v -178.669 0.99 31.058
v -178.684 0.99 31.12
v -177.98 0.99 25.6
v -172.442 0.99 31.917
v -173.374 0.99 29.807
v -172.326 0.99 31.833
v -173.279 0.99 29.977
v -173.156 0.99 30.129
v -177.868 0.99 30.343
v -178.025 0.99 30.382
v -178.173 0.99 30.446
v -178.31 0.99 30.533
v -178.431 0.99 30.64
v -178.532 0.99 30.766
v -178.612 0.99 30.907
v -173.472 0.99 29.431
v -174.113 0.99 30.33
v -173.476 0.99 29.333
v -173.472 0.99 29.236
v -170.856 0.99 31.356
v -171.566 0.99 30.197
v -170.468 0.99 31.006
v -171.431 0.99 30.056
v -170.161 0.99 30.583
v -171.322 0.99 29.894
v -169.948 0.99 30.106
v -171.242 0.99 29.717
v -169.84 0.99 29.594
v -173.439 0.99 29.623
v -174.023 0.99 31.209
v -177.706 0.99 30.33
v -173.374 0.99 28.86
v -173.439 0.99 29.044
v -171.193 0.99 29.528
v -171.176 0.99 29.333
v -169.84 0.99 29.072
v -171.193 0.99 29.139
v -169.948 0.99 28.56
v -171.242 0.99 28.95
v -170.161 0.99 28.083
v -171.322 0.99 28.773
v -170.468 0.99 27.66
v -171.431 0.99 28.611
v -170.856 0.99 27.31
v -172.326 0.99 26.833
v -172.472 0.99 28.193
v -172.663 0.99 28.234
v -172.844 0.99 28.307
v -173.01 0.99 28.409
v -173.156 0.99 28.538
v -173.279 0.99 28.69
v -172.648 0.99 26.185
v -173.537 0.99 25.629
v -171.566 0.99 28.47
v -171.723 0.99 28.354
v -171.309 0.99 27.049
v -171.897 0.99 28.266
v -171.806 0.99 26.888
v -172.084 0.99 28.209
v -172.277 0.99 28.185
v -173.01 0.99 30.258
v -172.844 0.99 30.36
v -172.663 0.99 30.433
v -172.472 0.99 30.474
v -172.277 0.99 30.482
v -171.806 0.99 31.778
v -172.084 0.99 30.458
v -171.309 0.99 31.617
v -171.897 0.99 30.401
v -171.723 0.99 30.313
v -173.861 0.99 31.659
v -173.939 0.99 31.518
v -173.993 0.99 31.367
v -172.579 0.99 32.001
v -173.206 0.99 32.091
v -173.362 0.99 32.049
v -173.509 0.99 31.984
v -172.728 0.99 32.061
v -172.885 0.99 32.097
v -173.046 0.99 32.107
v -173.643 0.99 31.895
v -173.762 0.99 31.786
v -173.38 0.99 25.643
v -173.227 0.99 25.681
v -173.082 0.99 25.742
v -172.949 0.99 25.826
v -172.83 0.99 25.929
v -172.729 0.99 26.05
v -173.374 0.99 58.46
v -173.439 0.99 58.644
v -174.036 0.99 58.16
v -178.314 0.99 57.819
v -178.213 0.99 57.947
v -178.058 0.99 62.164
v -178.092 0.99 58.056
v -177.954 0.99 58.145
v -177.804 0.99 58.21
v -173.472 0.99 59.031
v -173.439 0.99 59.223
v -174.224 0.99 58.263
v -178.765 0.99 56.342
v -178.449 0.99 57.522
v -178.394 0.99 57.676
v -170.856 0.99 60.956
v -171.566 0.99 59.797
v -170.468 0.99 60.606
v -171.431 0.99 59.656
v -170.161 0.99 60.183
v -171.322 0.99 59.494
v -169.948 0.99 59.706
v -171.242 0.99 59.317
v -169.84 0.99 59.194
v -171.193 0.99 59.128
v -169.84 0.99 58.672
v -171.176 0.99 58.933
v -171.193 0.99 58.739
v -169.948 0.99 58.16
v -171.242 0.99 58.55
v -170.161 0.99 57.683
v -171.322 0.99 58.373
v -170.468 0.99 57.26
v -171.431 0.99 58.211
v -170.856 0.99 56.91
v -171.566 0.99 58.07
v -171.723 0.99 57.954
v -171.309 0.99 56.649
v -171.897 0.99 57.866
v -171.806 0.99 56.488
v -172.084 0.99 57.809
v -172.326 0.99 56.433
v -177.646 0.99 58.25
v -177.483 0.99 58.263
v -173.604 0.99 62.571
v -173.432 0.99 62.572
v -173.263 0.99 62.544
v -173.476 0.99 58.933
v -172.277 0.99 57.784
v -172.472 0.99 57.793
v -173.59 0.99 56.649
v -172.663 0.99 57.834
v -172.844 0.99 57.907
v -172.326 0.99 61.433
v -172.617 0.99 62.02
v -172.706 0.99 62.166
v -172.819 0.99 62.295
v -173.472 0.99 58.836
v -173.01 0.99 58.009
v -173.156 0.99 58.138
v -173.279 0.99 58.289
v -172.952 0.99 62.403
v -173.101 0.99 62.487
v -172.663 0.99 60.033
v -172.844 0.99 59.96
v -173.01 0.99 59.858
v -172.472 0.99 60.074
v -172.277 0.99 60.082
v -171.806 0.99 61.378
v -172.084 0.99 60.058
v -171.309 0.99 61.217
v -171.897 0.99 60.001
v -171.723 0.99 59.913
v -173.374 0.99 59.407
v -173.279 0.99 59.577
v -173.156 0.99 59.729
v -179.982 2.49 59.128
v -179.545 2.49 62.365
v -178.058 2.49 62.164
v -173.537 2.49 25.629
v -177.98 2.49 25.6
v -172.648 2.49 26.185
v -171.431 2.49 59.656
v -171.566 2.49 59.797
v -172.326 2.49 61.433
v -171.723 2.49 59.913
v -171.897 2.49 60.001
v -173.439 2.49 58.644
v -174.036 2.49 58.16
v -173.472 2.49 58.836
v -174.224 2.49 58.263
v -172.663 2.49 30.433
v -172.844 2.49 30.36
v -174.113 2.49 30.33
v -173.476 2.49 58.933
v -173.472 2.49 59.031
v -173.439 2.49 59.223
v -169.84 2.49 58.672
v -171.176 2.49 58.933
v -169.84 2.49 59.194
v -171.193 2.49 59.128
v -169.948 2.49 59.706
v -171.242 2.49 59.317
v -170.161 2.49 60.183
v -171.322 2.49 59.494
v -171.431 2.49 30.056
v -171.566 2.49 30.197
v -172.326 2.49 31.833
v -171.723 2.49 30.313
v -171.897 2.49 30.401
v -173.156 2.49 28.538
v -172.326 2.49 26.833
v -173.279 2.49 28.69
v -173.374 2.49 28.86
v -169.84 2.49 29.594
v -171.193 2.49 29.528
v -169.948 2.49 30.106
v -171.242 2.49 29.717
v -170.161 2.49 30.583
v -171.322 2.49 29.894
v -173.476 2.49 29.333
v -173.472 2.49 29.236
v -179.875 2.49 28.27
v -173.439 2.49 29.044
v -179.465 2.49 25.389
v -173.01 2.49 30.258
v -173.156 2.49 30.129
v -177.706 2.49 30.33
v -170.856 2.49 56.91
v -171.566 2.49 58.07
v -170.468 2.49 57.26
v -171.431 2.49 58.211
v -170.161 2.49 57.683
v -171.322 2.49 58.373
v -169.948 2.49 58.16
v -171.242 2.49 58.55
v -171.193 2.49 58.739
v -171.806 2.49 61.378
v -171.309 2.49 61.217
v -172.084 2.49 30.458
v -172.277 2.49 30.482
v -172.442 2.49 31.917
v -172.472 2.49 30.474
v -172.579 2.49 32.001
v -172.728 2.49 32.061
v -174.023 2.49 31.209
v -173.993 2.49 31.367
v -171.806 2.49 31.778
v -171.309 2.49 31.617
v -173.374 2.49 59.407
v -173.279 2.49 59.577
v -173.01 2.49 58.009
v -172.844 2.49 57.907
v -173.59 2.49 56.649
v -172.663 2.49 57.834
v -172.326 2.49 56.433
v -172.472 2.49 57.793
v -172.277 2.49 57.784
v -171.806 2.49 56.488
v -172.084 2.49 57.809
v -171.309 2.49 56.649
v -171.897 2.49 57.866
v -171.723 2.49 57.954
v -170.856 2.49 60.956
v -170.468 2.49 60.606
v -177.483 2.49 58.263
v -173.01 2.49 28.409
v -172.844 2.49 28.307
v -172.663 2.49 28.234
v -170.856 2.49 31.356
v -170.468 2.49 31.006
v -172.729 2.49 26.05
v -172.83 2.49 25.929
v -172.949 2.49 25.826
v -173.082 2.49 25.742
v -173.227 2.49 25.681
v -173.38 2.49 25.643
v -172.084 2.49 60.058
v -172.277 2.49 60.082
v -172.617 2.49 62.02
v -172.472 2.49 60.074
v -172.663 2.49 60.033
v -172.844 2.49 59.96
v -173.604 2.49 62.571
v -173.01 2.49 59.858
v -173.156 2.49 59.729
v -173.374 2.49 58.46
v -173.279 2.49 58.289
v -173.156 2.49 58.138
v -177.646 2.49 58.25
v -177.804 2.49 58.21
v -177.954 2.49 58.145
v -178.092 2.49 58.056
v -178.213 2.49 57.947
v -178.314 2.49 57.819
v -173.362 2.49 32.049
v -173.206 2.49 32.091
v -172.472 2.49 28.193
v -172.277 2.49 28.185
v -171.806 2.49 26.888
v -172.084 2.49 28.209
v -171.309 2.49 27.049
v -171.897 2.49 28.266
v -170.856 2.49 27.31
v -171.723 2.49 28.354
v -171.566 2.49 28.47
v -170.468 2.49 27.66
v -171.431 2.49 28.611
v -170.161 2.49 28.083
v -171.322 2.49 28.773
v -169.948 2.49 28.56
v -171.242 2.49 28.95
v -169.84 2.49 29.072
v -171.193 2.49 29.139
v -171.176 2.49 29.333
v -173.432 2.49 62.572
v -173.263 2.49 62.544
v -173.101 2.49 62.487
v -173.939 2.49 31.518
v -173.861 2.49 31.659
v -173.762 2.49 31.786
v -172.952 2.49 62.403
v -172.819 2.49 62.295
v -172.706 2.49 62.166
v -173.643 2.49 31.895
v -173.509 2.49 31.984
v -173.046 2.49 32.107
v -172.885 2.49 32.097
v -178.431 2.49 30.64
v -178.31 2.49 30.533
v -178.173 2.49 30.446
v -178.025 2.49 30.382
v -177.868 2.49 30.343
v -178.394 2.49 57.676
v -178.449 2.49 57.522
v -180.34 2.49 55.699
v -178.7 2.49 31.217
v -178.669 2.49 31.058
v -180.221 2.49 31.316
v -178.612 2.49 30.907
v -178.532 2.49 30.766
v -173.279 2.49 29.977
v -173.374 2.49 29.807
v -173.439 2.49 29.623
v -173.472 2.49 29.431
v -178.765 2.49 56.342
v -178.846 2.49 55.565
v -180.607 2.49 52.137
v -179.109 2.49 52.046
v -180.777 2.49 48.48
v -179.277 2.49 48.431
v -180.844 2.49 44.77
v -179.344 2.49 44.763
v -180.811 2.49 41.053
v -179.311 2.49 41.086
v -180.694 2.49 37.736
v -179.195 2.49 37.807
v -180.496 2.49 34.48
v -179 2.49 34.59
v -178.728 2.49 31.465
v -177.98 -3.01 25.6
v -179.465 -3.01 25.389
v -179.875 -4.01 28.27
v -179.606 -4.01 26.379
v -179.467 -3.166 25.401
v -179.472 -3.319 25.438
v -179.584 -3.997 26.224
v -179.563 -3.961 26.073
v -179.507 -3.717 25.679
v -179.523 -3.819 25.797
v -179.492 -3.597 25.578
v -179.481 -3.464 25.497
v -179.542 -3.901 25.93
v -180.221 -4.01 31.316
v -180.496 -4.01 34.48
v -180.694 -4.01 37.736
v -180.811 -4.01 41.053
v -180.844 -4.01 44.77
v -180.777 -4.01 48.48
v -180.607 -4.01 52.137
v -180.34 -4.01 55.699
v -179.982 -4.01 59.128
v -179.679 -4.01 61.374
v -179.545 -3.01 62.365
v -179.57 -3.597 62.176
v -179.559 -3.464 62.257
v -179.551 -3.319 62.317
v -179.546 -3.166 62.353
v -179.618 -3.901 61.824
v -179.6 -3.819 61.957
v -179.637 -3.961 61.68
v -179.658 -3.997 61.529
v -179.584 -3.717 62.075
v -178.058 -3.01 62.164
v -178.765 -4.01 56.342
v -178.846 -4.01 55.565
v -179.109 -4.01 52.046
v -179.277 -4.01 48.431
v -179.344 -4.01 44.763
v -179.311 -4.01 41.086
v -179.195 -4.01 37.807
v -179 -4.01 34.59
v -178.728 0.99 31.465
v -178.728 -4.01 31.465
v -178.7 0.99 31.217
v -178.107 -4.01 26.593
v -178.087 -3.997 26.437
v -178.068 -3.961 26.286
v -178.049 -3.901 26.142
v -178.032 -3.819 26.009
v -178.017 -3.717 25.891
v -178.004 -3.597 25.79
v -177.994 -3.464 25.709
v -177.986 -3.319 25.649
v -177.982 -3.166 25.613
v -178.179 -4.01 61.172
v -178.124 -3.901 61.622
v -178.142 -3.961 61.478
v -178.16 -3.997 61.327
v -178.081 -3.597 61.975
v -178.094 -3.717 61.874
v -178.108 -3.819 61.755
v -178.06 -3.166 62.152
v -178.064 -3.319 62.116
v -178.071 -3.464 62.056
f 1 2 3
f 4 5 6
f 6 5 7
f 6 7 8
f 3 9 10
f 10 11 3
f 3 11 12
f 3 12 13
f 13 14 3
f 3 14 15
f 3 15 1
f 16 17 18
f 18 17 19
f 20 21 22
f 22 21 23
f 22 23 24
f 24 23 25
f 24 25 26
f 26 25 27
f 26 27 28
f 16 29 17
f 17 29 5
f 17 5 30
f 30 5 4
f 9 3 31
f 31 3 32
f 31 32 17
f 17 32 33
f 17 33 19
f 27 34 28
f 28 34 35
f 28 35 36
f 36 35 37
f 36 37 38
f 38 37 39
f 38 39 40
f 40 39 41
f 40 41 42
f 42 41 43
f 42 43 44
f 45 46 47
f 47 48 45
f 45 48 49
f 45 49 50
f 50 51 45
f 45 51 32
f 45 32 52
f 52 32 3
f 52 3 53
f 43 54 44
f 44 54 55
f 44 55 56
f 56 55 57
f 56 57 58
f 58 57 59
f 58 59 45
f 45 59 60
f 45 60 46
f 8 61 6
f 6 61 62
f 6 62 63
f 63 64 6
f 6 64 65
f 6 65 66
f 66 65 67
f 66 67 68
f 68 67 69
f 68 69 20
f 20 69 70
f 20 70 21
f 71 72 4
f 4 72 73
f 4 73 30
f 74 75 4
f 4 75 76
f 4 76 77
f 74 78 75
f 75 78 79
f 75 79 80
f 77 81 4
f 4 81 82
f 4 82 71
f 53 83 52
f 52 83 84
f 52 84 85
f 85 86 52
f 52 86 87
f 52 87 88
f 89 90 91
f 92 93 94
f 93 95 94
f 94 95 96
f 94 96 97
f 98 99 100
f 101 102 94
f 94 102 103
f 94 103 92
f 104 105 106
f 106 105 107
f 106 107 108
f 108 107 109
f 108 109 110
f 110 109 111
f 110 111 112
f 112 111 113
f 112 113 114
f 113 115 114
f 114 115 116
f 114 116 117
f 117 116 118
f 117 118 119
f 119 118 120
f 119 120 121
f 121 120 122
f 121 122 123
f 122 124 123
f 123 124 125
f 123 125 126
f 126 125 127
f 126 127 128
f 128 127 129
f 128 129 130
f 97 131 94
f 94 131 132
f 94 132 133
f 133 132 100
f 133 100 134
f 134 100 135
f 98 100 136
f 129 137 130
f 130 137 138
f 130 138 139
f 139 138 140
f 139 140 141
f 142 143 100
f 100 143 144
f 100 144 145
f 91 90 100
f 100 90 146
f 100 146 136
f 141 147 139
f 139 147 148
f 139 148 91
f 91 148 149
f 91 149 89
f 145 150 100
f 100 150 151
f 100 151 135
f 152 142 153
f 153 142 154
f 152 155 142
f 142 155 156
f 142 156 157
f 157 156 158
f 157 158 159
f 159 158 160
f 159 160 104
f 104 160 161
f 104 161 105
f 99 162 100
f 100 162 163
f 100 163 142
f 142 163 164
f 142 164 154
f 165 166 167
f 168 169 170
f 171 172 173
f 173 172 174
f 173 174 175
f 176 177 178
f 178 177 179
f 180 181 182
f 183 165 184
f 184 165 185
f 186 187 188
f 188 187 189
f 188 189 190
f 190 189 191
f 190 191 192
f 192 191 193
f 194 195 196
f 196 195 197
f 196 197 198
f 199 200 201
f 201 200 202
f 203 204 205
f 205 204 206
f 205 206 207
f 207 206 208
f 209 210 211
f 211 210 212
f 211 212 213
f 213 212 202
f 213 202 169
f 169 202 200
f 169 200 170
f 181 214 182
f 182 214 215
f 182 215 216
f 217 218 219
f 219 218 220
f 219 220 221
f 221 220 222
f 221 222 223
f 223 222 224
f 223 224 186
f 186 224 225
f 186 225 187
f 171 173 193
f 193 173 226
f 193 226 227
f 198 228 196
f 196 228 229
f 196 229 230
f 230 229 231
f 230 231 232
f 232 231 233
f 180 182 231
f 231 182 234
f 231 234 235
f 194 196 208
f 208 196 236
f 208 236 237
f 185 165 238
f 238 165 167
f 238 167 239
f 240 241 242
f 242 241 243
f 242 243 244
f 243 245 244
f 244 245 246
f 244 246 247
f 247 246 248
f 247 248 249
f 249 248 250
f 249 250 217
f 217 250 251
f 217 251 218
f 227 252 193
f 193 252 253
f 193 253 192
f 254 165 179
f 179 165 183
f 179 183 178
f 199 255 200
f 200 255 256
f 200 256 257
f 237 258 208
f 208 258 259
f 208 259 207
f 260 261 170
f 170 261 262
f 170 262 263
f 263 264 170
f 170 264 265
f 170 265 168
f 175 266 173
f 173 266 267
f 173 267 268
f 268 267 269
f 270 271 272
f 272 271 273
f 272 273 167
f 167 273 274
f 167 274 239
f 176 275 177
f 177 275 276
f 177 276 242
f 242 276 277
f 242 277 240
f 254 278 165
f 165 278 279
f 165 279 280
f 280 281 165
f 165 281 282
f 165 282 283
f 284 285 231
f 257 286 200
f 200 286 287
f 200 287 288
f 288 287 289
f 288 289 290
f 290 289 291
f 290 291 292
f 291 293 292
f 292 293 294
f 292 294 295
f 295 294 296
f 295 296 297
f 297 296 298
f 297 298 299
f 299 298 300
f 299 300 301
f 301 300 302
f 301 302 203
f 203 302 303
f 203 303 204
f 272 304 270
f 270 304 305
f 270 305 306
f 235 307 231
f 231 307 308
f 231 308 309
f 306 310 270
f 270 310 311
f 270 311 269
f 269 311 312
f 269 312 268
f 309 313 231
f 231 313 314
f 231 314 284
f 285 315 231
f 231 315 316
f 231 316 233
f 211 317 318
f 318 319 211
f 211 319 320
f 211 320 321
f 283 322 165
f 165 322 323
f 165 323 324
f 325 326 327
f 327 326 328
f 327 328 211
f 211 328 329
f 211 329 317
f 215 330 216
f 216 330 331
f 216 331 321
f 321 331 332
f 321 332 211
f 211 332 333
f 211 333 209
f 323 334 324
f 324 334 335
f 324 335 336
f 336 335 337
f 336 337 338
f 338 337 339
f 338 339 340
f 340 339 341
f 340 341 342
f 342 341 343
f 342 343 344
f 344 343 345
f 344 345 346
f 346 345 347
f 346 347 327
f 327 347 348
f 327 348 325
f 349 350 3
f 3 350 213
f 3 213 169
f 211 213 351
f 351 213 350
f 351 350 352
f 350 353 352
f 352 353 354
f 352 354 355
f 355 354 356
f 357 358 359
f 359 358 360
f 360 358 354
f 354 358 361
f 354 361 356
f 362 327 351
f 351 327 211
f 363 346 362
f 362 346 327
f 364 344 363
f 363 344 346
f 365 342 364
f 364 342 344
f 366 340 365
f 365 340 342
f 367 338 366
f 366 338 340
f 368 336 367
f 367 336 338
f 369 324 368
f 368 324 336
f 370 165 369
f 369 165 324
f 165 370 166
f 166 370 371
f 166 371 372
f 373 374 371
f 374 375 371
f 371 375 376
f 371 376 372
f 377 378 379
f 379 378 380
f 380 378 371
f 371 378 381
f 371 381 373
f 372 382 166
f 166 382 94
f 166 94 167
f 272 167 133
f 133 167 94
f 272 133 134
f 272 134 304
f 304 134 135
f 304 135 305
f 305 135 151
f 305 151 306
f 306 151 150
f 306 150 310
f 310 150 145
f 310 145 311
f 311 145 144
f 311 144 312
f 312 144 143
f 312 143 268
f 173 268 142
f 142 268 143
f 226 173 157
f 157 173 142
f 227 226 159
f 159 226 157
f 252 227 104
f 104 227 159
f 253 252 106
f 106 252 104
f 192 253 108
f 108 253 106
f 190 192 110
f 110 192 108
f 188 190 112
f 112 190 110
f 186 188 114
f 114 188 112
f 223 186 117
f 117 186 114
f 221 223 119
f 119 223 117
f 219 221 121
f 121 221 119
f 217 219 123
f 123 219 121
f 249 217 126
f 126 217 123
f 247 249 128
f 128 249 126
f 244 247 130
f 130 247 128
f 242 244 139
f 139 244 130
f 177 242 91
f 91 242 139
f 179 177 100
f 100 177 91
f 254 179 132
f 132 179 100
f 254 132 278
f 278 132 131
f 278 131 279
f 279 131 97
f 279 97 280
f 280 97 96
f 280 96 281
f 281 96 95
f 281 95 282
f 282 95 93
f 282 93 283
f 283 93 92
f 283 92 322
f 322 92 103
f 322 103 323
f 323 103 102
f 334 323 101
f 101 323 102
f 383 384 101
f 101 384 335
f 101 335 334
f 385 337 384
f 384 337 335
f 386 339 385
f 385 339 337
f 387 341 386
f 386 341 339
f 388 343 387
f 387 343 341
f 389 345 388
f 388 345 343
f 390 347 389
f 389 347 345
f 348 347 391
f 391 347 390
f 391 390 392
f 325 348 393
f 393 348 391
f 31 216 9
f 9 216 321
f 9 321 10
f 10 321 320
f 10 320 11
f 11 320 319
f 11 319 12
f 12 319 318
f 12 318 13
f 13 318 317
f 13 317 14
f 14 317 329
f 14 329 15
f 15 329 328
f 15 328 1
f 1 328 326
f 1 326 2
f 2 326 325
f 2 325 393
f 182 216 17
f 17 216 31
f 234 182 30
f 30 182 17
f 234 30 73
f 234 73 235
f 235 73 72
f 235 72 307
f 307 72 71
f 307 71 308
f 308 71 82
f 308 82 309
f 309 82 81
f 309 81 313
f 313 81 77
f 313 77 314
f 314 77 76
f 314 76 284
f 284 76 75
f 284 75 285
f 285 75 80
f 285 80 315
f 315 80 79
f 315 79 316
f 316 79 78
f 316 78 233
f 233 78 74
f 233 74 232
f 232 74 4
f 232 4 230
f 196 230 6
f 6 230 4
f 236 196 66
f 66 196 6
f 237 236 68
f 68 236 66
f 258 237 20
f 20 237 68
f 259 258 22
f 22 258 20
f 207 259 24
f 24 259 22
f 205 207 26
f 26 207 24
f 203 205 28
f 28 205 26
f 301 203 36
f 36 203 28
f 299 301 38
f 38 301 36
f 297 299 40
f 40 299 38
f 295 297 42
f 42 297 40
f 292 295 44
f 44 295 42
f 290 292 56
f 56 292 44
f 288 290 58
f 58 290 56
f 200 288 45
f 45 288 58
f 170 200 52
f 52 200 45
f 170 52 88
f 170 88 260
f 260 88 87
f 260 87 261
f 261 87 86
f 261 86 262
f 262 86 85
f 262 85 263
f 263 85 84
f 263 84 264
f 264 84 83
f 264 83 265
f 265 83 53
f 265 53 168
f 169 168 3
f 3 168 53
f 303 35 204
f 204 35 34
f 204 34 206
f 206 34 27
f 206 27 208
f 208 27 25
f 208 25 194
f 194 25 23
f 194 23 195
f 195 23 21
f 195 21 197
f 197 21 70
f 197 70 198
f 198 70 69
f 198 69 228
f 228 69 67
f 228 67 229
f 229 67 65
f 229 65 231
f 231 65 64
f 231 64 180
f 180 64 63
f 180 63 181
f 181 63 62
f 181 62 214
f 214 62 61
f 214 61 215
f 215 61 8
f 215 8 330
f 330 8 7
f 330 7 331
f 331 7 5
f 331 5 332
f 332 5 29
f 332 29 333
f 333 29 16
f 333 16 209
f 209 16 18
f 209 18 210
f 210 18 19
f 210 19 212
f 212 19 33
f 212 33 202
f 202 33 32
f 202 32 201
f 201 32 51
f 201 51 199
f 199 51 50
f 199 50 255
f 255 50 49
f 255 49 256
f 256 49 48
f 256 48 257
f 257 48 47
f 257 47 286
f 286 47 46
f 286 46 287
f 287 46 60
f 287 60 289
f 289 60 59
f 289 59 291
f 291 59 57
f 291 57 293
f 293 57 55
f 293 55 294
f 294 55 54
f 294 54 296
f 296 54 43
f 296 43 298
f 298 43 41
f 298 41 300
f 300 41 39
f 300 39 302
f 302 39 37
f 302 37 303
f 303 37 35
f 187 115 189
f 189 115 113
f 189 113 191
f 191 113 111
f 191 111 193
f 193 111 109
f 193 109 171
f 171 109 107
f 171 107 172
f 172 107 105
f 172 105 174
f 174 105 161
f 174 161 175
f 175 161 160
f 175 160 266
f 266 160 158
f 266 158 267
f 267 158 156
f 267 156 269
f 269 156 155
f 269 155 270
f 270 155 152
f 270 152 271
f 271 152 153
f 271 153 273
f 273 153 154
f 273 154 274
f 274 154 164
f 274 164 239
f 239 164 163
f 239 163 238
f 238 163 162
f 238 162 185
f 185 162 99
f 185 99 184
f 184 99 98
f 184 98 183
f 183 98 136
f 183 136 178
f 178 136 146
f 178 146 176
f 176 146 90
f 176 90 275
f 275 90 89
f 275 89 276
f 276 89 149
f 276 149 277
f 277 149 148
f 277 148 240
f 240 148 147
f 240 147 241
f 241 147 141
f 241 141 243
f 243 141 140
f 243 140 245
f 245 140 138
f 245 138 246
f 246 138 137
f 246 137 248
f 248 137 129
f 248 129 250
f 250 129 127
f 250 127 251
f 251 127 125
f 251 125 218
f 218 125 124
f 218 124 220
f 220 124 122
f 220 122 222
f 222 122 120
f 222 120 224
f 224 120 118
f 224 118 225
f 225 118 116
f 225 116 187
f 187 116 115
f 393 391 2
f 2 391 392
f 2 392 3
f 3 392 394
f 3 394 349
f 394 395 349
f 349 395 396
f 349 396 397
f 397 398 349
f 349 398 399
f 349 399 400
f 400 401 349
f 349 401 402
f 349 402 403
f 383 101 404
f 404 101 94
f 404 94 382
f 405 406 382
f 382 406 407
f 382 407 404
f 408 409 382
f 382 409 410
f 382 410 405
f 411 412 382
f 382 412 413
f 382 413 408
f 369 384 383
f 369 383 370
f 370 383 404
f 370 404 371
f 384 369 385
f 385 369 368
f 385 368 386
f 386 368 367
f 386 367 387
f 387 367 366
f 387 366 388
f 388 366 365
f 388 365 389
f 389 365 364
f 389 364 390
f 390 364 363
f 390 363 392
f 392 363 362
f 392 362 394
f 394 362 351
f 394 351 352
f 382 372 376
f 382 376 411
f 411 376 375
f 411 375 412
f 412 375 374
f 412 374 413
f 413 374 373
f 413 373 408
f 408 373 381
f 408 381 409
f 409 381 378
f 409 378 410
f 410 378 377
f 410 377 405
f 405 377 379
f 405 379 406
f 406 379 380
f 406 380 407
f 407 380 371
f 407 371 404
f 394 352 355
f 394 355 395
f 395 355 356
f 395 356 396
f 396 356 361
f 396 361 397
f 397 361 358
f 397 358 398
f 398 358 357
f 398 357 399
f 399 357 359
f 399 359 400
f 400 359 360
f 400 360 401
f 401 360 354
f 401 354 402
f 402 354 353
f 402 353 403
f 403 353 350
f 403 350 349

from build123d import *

# Parameters (mm, degrees)
SZKIC2_R                    = 1.15000024
DODANIE_WYCI_GNI_CIE1_DEPTH = 1.5
DODANIE_WYCI_GNI_CIE2_DEPTH = 5
ZAOKR_GLENIE1_R             = 1


with BuildPart() as part:
    # Szkic2 → Dodanie-wyciągnięcie1 (new body)
    with BuildSketch(Plane(origin=(0, 0.9903587, 0), x_dir=(1, 0, 0), z_dir=(0, 1, 0))):
        with BuildLine():
            Line((-173.537057861, -25.629454659), (-177.980234802, -25.600470859))
            Line((-177.980234802, -25.600470859), (-179.465273063, -25.389138502))
            Line((-179.465273063, -25.389138502), (-179.875270484, -28.27020162))
            Line((-179.875270484, -28.27020162), (-180.220882829, -31.315847433))
            Line((-180.220882829, -31.315847433), (-180.496294073, -34.480041019))
            Line((-180.496294073, -34.480041019), (-180.693629515, -37.735565991))
            Line((-180.693629515, -37.735565991), (-180.810996631, -41.053218548))
            Line((-180.810996631, -41.053218548), (-180.844357588, -44.770440674))
            Line((-180.844357588, -44.770440674), (-180.776598606, -48.479996177))
            Line((-180.776598606, -48.479996177), (-180.606637328, -52.137204019))
            Line((-180.606637328, -52.137204019), (-180.340406733, -55.699429047))
            Line((-180.340406733, -55.699429047), (-179.981756968, -59.127877551))
            Line((-179.981756968, -59.127877551), (-179.544751696, -62.365140152))
            Line((-179.544751696, -62.365140152), (-178.058234871, -62.164471942))
            Line((-178.058234871, -62.164471942), (-173.603659928, -62.571167494))
            ThreePointArc((-173.603659928, -62.571167494), (-173.024806006, -62.44819003), (-172.616824171, -62.019533826))
            Line((-172.616824171, -62.019533826), (-172.326234878, -61.433471042))
            Line((-172.326234878, -61.433471042), (-171.806234897, -61.378472644))
            Line((-171.806234897, -61.378472644), (-171.309234799, -61.217471439))
            Line((-171.309234799, -61.217471439), (-170.856234968, -60.956471759))
            Line((-170.856234968, -60.956471759), (-170.468234957, -60.606471377))
            Line((-170.468234957, -60.606471377), (-170.161234797, -60.183471042))
            Line((-170.161234797, -60.183471042), (-169.948234976, -59.706471759))
            Line((-169.948234976, -59.706471759), (-169.840234936, -59.194472629))
            Line((-169.840234936, -59.194472629), (-169.840234936, -58.672471362))
            Line((-169.840234936, -58.672471362), (-169.948234976, -58.160472232))
            Line((-169.948234976, -58.160472232), (-170.161234797, -57.683471042))
            Line((-170.161234797, -57.683471042), (-170.468234957, -57.260472613))
            Line((-170.468234957, -57.260472613), (-170.856234968, -56.910472232))
            Line((-170.856234968, -56.910472232), (-171.309234799, -56.649472552))
            Line((-171.309234799, -56.649472552), (-171.806234897, -56.488471347))
            Line((-171.806234897, -56.488471347), (-172.326234878, -56.433471042))
            Line((-172.326234878, -56.433471042), (-173.590153384, -56.649472552))
            Line((-173.590153384, -56.649472552), (-174.035645958, -58.160472232))
            Line((-174.035645958, -58.160472232), (-174.223992711, -58.263046011))
            Line((-174.223992711, -58.263046011), (-177.48282769, -58.263046011))
            ThreePointArc((-177.48282769, -58.263046011), (-178.091581224, -58.056405409), (-178.448748365, -57.52188428))
            Line((-178.448748365, -57.52188428), (-178.765053408, -56.341511761))
            Line((-178.765053408, -56.341511761), (-178.846234978, -55.565471011))
            Line((-178.846234978, -55.565471011), (-179.109234989, -52.046471912))
            Line((-179.109234989, -52.046471912), (-179.277234734, -48.43147214))
            Line((-179.277234734, -48.43147214), (-179.344234646, -44.763472873))
            Line((-179.344234646, -44.763472873), (-179.311234654, -41.08647092))
            Line((-179.311234654, -41.08647092), (-179.195234955, -37.807471591))
            Line((-179.195234955, -37.807471591), (-179.000234783, -34.590472537))
            Line((-179.000234783, -34.590472537), (-178.728234947, -31.465472537))
            Line((-178.728234947, -31.465472537), (-178.700062197, -31.217205306))
            ThreePointArc((-178.700062197, -31.217205306), (-178.372489594, -30.58405239), (-177.706439248, -30.329959177))
            Line((-177.706439248, -30.329959177), (-174.112522963, -30.329959177))
            Line((-174.112522963, -30.329959177), (-174.022657546, -31.208577866))
            ThreePointArc((-174.022657546, -31.208577866), (-173.436715177, -32.019422034), (-172.441579371, -31.91694544))
            Line((-172.441579371, -31.91694544), (-172.326234878, -31.833472568))
            Line((-172.326234878, -31.833472568), (-171.806234897, -31.778472262))
            Line((-171.806234897, -31.778472262), (-171.309234799, -31.617472964))
            Line((-171.309234799, -31.617472964), (-170.856234968, -31.356471377))
            Line((-170.856234968, -31.356471377), (-170.468234957, -31.006472903))
            Line((-170.468234957, -31.006472903), (-170.161234797, -30.583472568))
            Line((-170.161234797, -30.583472568), (-169.948234976, -30.106471377))
            Line((-169.948234976, -30.106471377), (-169.840234936, -29.59447034))
            Line((-169.840234936, -29.59447034), (-169.840234936, -29.072470981))
            Line((-169.840234936, -29.072470981), (-169.948234976, -28.560469943))
            Line((-169.948234976, -28.560469943), (-170.161234797, -28.083472568))
            Line((-170.161234797, -28.083472568), (-170.468234957, -27.660472232))
            Line((-170.468234957, -27.660472232), (-170.856234968, -27.310469943))
            Line((-170.856234968, -27.310469943), (-171.309234799, -27.049472171))
            Line((-171.309234799, -27.049472171), (-171.806234897, -26.888472873))
            Line((-171.806234897, -26.888472873), (-172.326234878, -26.833472568))
            Line((-172.326234878, -26.833472568), (-172.647665436, -26.185208875))
            ThreePointArc((-172.647665436, -26.185208875), (-173.013661572, -25.781385351), (-173.537057861, -25.629454659))
        make_face()
        with Locations((-172.326039002, -29.333481885)):
            Circle(SZKIC2_R, mode=Mode.SUBTRACT)
        with Locations((-172.326039002, -58.933463325)):
            Circle(SZKIC2_R, mode=Mode.SUBTRACT)
    extrude(amount=DODANIE_WYCI_GNI_CIE1_DEPTH)

    # Szkic3 → Dodanie-wyciągnięcie2 (add)
    with BuildSketch(Plane.XZ.offset(-0.9903587)):
        Polygon((-178.765053408, 56.341511761), (-178.058234871, 62.164471942), (-179.544751696, 62.365140152), (-179.981756968, 59.127877551), (-180.340406733, 55.699429047), (-180.606637328, 52.137204019), (-180.776598606, 48.479996177), (-180.844357588, 44.770440674), (-180.810996631, 41.053218548), (-180.693629515, 37.735565991), (-180.496294073, 34.480041019), (-180.220882829, 31.315847433), (-179.875270484, 28.27020162), (-179.465273063, 25.389138502), (-177.980234802, 25.600470859), (-178.728234947, 31.465472537), (-179.000234783, 34.590472537), (-179.195234955, 37.807471591), (-179.311234654, 41.08647092), (-179.344234646, 44.763472873), (-179.277234734, 48.43147214), (-179.109234989, 52.046471912), (-178.846234978, 55.565471011), align=None)
    extrude(amount=DODANIE_WYCI_GNI_CIE2_DEPTH)

    # Zaokrąglenie1
    zaokr_glenie1_edges = [part.edges().sort_by_distance(p)[0] for p in [
        (-178.722753933, -4.0096413, 25.49480468),
        (-178.801493283, -4.0096413, 62.264806047),
    ]]
    fillet(zaokr_glenie1_edges, radius=ZAOKR_GLENIE1_R)


solid = part.part
